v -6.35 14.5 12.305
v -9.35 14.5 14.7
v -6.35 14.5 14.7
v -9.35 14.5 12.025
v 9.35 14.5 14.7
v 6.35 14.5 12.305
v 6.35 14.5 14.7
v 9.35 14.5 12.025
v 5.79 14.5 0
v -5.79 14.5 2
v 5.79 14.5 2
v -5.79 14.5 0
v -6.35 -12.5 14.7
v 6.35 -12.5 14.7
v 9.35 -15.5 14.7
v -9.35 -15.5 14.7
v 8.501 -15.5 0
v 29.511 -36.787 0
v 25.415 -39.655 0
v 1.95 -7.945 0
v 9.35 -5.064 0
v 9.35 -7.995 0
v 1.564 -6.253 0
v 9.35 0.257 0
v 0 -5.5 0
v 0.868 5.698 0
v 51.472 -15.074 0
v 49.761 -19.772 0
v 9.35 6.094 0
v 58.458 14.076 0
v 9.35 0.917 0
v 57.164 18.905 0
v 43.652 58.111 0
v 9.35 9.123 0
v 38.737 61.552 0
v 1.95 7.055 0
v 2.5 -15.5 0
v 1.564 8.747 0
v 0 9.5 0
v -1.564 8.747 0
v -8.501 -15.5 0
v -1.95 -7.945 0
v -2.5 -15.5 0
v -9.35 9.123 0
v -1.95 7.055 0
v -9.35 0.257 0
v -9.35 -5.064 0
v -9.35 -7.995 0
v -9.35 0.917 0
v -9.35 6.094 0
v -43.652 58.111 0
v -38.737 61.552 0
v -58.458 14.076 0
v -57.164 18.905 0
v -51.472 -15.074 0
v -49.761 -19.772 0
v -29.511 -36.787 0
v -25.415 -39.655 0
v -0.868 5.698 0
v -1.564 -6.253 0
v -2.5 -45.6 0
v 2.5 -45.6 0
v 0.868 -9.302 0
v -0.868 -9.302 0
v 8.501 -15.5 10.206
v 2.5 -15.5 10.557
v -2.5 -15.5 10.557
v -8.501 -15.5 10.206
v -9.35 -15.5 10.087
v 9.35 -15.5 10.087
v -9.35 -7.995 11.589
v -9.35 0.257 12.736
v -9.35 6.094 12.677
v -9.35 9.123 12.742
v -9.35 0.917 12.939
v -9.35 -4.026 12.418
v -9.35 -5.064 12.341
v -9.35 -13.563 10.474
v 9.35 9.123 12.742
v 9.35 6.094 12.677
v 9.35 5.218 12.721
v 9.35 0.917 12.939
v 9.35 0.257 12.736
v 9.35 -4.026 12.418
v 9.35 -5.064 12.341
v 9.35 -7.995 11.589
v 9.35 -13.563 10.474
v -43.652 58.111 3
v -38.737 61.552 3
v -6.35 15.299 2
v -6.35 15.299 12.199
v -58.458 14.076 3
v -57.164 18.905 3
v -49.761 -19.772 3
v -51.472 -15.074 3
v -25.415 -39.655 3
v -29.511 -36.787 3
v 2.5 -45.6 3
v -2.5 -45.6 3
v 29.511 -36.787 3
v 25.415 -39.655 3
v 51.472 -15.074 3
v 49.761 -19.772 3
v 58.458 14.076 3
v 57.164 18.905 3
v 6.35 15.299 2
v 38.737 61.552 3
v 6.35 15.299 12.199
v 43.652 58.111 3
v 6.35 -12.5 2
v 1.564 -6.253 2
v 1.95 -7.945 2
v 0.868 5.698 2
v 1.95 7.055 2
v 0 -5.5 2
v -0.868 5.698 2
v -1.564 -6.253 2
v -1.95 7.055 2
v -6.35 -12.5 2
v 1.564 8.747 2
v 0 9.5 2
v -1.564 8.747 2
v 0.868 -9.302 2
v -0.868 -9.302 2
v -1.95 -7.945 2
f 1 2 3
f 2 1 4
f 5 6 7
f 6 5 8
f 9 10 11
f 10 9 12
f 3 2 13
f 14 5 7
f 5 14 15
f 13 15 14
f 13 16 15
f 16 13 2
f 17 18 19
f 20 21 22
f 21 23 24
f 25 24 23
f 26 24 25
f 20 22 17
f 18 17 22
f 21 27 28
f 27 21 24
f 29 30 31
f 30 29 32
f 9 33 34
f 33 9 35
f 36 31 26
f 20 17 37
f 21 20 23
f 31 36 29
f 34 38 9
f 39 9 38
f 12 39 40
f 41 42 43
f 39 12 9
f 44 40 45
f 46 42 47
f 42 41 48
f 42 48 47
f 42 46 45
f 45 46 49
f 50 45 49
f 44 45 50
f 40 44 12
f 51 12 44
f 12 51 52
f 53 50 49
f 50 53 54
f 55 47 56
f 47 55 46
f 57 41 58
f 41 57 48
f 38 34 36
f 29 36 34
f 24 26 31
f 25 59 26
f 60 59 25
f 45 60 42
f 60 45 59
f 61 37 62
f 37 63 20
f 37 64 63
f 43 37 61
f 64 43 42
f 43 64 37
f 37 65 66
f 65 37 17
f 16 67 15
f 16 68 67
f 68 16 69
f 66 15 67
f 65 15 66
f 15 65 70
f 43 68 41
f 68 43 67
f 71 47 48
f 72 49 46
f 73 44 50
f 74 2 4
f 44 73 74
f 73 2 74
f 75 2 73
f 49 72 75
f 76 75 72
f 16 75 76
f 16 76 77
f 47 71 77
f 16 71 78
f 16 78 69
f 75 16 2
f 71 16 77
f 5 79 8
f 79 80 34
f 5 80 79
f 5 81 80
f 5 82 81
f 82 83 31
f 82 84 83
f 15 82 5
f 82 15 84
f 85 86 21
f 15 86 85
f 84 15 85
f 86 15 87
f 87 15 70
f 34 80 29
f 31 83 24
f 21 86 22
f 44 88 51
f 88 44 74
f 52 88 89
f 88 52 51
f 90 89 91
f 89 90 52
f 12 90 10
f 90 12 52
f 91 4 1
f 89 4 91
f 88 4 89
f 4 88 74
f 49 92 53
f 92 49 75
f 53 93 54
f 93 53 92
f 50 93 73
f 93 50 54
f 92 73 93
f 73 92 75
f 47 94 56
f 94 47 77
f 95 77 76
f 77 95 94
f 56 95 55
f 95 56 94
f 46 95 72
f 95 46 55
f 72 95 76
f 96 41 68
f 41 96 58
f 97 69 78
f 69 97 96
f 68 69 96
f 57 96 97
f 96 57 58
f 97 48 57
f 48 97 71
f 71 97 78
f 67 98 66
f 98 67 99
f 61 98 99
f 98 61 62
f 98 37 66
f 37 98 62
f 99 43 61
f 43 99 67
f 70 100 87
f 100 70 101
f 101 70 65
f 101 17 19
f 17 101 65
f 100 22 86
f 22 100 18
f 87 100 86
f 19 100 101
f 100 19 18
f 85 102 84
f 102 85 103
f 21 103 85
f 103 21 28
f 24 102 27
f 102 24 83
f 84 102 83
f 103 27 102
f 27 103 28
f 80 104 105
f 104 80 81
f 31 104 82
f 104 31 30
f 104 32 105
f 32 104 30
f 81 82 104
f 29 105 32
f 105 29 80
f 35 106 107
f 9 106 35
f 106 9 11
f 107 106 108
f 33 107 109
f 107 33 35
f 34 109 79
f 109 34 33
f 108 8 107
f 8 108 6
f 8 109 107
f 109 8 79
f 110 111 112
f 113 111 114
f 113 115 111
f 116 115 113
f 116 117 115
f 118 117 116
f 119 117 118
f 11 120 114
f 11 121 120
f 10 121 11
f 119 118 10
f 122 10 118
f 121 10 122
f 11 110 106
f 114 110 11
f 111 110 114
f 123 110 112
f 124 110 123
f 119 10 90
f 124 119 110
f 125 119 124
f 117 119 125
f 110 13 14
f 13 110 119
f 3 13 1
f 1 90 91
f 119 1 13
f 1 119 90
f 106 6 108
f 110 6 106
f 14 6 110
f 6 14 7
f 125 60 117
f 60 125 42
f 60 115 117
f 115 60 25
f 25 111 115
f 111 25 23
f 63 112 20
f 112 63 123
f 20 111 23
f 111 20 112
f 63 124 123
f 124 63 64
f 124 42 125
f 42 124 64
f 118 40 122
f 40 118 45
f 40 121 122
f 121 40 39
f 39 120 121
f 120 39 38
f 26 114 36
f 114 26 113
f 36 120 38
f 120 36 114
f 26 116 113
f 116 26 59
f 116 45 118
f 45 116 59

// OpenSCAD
// file: _shared-vars.scad
carafeWidth = 133;

footWidth = 25; // TODO
footDepth = 20; // TODO
footDistanceX = 130; // TODO
footDistanceY = 120; // TODO

loadCellWidth = 12.7;
loadCellThickness = 12.7;
loadCellLength = 80;
loadCellBoltDistance = 15;
loadCellPlateBoltDiameter = 4;
loadCellPlateBoltInset = 5;
loadCellBaseBoltDiameter = 5;

loadCellCarafeOffset = (carafeWidth - loadCellLength) / 4;
// main file
include <./_shared-vars.scad>

topPlateThickness = 2;
attachPointWallThickness = 3;
attachPointLength = loadCellPlateBoltInset * 2 + loadCellBoltDistance + loadCellPlateBoltDiameter / 2;
attachPointWidth = loadCellWidth + attachPointWallThickness * 2;
attachPointHeight = topPlateThickness + loadCellThickness;
supportArmLength = carafeWidth / 2 * 0.9;
supportArmThickness = 5;
supportArmTipThickness = 3;

module carafePlateSupport() {
   rotate([ 0, 0, 90 ])
   translate([ -loadCellPlateBoltInset - loadCellBoltDistance / 2- attachPointWallThickness, -attachPointWidth / 2, 0 ])
   difference() {
      union() {
         cube([ attachPointLength + attachPointWallThickness, attachPointWidth, attachPointHeight ]);

         supportArm(-55, supportArmLength * 1.2, supportArmThickness * 1.2);
         supportArm(-15);
         supportArm(20, supportArmLength * .9);
         supportArm(55, supportArmLength * .8);
         supportArm(90, supportArmLength - loadCellCarafeOffset);
         supportArm(125, supportArmLength * .8);
         supportArm(160, supportArmLength * .9);
         supportArm(195);
         supportArm(235, supportArmLength * 1.2, supportArmThickness * 1.2);
      }
      translate([ attachPointWallThickness, attachPointWallThickness, topPlateThickness ])
         cube([ attachPointLength + 1, loadCellWidth, attachPointHeight + 10 ]);

      translate([ attachPointWallThickness + loadCellPlateBoltInset, attachPointWidth / 2, -1  ])
        cylinder(r = loadCellPlateBoltDiameter / 2, h = topPlateThickness + 2);

      translate([ attachPointWallThickness + loadCellPlateBoltInset + loadCellBoltDistance, attachPointWidth / 2, -1  ])
         cylinder(r = loadCellPlateBoltDiameter / 2, h = topPlateThickness + 2);
   }
}

module supportArm(zRot = 0, length = supportArmLength, width = supportArmThickness) {
   translate([ attachPointLength / 2 + attachPointWallThickness, attachPointWidth / 2, 0 ])
   rotate([ 0, -90, zRot ])
   translate([ 0, 0, -width / 2 ])
   linear_extrude(height = width)
   polygon(points = [
      [ 0, length ],
      [ supportArmTipThickness, length ],
      [ attachPointHeight, 0 ],
      [ 0, 0 ],
   ]);
}

carafePlateSupport();
